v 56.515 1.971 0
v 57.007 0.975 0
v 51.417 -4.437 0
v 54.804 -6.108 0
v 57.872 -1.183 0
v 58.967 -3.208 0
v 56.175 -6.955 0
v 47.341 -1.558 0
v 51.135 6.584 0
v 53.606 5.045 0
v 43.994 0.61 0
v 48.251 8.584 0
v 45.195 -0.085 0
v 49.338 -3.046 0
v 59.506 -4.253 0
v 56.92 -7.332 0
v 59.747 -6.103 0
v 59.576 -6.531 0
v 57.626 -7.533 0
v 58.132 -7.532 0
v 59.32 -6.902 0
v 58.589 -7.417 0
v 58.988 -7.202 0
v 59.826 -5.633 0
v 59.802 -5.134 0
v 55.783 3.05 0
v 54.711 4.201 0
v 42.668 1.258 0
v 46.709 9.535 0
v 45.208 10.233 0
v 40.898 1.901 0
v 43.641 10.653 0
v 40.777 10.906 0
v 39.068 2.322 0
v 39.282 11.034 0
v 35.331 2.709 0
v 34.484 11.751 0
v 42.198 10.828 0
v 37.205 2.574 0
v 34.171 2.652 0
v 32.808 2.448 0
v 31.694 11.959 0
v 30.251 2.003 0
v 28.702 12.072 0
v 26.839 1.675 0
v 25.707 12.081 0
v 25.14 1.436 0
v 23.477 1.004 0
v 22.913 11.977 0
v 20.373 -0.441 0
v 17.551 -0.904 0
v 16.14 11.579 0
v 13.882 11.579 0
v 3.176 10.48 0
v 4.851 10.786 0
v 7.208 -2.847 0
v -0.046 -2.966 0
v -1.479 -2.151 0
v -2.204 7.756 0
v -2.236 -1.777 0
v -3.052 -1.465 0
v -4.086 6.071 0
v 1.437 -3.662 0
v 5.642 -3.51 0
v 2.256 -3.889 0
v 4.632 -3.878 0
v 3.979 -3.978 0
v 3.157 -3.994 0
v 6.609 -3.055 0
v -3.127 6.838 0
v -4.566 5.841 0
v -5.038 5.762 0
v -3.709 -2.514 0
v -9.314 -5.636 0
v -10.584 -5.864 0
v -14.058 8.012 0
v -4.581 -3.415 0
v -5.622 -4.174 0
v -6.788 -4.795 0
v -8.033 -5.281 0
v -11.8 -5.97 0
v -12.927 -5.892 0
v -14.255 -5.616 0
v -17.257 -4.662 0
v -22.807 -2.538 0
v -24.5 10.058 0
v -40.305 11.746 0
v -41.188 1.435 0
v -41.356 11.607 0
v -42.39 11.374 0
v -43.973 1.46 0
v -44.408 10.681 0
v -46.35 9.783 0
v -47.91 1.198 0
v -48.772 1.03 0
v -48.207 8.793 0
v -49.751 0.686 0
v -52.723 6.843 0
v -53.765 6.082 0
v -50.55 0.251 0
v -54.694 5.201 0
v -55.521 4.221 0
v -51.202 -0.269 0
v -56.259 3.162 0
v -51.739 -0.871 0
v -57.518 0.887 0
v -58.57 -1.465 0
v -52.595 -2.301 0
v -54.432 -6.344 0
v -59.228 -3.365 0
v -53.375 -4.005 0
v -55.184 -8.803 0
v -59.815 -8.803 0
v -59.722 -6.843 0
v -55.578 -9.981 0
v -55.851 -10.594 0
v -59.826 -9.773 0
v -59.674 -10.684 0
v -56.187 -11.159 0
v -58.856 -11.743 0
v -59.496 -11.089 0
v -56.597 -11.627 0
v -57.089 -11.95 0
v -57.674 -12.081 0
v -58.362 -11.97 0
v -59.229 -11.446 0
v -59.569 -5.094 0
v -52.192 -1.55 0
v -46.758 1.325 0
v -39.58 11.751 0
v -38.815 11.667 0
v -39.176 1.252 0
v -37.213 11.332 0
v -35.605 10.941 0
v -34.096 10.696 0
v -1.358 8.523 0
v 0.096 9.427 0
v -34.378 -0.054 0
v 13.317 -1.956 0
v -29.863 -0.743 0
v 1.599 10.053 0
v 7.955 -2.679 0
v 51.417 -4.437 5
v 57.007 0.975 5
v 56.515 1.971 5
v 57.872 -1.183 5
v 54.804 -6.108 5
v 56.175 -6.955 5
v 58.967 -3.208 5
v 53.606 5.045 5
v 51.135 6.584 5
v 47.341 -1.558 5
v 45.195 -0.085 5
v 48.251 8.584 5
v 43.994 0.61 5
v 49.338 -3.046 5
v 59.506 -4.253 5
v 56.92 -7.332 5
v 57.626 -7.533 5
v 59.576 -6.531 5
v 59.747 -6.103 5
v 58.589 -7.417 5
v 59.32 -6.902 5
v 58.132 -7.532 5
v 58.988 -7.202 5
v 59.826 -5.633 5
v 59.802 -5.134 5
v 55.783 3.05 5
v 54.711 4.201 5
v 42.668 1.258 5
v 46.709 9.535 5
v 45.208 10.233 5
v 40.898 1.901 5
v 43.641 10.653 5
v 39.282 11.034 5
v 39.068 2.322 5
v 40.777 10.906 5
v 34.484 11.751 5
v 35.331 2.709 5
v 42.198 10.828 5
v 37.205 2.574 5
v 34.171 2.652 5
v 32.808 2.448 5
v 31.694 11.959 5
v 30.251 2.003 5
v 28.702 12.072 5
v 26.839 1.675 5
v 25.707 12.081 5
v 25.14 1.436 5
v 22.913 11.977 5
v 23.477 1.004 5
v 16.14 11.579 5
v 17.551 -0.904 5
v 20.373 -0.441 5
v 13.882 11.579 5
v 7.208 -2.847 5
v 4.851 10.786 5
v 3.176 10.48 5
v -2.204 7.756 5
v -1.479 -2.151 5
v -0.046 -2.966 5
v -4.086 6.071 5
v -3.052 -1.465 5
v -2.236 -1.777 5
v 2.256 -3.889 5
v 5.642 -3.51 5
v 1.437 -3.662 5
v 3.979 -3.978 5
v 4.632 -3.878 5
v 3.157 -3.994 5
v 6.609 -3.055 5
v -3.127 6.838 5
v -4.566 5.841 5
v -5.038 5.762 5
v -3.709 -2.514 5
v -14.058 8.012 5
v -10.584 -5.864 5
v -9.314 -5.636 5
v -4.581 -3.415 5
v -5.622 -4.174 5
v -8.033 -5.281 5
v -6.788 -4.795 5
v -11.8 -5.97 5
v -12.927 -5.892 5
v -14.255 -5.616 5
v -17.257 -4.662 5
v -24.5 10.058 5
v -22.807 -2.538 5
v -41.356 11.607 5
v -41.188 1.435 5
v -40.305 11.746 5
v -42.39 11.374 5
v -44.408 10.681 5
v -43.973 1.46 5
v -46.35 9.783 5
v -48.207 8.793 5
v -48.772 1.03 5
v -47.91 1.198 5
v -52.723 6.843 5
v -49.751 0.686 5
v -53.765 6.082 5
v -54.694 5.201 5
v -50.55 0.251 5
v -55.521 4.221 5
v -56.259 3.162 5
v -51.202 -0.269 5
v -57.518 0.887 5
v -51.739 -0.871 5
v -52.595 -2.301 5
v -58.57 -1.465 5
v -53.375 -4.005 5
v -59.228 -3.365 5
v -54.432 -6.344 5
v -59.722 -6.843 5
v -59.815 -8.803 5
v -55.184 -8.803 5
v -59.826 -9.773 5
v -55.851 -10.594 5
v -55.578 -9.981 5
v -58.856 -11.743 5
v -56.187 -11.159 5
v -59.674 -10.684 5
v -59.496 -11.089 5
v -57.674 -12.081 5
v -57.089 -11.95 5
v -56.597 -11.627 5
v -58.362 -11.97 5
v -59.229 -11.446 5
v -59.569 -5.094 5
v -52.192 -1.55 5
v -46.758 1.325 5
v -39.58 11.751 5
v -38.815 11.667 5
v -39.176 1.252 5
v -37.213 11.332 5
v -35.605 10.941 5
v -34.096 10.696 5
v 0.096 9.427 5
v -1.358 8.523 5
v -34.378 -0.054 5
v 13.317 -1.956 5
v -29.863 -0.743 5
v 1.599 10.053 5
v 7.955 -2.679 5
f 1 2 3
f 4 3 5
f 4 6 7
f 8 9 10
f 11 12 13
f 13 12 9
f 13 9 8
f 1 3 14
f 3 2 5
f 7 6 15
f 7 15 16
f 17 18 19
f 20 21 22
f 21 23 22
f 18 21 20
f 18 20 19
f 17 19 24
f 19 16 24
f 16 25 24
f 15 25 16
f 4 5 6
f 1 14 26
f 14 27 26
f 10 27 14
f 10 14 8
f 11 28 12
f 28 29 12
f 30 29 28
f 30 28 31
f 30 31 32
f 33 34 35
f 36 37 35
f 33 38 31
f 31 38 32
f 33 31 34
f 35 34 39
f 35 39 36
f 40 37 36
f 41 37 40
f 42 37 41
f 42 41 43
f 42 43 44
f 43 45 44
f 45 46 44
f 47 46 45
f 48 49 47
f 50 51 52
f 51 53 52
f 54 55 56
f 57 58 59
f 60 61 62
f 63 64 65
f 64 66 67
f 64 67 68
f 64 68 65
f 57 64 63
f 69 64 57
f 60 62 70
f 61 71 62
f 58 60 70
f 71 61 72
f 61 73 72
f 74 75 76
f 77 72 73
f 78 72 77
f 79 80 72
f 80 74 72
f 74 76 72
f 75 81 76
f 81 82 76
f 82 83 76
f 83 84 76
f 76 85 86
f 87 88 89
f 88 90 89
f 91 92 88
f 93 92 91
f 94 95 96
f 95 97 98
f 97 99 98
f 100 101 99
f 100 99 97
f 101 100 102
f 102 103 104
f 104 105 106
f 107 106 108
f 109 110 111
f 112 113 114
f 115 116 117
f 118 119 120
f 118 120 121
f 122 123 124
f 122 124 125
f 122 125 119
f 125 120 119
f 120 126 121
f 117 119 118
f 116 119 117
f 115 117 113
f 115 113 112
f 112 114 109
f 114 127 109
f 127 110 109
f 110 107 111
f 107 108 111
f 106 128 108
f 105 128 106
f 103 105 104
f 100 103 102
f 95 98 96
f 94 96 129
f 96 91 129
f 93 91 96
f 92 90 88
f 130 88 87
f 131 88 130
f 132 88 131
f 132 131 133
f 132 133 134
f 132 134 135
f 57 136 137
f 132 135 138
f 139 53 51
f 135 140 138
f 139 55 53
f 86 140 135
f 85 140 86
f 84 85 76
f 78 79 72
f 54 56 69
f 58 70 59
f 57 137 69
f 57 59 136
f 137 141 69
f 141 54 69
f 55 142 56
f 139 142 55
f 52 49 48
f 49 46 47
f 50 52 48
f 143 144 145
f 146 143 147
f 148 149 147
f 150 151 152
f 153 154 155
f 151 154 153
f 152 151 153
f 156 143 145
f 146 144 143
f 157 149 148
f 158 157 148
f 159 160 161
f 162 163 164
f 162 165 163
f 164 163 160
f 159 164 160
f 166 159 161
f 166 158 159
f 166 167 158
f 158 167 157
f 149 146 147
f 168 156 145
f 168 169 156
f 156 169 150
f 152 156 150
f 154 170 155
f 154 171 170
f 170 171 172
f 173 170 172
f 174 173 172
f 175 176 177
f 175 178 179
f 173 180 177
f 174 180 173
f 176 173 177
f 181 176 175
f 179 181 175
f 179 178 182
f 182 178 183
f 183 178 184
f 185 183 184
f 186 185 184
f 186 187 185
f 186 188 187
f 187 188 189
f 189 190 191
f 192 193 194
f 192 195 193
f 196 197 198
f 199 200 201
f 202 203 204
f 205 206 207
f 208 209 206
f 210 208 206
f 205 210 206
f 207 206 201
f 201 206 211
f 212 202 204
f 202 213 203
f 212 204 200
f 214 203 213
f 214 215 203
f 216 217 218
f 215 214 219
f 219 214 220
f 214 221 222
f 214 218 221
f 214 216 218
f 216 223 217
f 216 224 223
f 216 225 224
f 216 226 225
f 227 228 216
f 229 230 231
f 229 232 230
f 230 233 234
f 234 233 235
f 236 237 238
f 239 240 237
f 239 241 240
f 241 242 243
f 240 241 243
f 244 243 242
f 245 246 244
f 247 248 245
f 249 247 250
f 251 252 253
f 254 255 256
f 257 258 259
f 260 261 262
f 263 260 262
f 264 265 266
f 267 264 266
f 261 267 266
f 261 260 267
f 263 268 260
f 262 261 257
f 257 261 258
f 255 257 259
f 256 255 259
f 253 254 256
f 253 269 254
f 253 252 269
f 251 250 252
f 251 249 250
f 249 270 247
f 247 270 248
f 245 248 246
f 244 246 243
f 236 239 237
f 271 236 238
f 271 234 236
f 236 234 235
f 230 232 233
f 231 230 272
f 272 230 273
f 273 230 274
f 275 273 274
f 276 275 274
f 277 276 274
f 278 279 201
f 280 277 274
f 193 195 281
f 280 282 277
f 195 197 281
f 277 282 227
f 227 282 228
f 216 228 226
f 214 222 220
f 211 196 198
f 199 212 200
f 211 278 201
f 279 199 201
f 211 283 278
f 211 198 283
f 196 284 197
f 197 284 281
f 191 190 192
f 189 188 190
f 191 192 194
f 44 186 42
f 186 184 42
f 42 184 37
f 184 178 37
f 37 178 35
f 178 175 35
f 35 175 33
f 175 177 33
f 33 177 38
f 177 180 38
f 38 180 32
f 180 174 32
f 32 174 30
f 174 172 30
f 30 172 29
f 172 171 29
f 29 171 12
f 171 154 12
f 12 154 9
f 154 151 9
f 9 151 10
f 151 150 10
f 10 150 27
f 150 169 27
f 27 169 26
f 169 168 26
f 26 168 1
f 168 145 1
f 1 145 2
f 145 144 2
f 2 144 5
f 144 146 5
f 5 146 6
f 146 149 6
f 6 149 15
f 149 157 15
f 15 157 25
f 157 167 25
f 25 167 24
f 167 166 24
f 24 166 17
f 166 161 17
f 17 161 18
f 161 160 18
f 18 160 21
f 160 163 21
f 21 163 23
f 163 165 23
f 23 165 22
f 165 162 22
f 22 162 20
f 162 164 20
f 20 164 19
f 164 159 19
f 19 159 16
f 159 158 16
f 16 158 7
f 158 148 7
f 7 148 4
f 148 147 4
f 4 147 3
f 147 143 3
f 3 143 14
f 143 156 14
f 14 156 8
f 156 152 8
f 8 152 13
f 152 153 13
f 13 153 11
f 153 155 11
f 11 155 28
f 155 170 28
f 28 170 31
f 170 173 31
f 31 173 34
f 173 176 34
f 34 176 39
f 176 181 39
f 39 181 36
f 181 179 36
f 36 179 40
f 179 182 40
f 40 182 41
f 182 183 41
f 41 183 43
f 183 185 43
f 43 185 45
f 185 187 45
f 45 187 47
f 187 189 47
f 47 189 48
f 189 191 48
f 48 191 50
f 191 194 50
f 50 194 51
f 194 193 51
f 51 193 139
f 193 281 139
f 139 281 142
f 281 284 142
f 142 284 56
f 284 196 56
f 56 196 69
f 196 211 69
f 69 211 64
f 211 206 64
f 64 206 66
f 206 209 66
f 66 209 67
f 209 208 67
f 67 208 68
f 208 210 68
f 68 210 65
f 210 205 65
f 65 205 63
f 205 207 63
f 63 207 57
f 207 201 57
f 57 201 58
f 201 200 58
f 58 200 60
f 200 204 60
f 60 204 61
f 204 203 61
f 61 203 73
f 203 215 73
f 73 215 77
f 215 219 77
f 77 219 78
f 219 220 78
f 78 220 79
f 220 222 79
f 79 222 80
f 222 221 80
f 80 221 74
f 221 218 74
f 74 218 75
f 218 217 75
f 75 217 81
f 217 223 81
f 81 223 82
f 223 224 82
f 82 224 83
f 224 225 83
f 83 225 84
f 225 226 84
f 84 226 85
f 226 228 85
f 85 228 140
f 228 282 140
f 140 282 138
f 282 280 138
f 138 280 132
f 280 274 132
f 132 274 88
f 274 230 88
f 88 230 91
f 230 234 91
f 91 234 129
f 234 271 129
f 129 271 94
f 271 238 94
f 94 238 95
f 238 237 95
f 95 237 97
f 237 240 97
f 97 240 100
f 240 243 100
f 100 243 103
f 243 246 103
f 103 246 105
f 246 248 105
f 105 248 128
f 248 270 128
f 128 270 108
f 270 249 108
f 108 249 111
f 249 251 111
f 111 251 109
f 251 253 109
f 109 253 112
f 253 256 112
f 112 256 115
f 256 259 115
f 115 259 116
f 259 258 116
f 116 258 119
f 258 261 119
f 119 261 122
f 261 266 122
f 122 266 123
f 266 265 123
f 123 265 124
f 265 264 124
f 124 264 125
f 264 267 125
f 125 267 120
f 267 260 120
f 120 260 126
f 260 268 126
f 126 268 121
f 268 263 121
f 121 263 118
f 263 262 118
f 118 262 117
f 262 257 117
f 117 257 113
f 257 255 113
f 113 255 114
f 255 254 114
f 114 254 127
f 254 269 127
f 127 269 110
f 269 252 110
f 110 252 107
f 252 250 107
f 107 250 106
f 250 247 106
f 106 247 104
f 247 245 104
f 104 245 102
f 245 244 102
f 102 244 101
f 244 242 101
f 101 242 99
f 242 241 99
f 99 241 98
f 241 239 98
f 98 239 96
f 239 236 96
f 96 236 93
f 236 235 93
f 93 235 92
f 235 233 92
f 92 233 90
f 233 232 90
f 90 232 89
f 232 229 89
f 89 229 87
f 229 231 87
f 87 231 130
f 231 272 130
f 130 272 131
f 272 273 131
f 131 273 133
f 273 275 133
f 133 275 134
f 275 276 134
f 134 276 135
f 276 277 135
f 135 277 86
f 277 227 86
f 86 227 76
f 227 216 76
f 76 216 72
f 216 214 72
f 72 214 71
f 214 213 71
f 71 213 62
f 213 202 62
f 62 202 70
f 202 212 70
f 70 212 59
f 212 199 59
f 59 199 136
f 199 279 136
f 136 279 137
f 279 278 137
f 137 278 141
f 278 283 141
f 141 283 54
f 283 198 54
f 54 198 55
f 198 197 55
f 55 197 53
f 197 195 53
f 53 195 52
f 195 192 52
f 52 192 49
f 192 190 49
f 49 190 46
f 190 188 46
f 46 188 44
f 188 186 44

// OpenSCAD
fridaKalohBrow(5);

module fridaKalohBrow(h)
{
  scale([25.4/90, -25.4/90, 1]) union()
  {
    linear_extrude(height=h)
      polygon([[-41.812656,21.152012],[-45.803359,20.878887],[-50.510781,19.898887],[-61.147656,16.519512],[-80.812656,8.992012],[-105.812656,2.632012],[-121.812656,0.192012],[-138.812656,-4.437988],[-145.940625,-5.083770],[-155.808906,-5.171738],[-165.679062,-4.695332],[-169.759082,-4.243437],[-172.812656,-3.647988],[-176.281621,-2.429023],[-179.114375,-0.890020],[-181.424707,0.953438],[-183.326406,3.085762],[-184.933262,5.491367],[-186.359062,8.154668],[-189.122656,14.192012],[-192.867656,22.478262],[-195.532656,31.192012],[-196.930625,35.366699],[-197.897441,37.538770],[-199.088906,39.539512],[-200.539590,41.198066],[-202.284062,42.343574],[-204.356895,42.805176],[-206.792656,42.412012],[-208.545059,41.609570],[-209.865625,40.556230],[-210.811895,39.291719],[-211.441406,37.855762],[-211.980312,34.628418],[-211.942656,31.192012],[-211.613594,24.246699],[-211.072656,18.049512],[-209.864219,11.923574],[-207.532656,5.192012],[-203.804375,-3.141582],[-199.343906,-11.204238],[-196.728652,-14.956719],[-193.797812,-18.428770],[-190.507207,-21.549492],[-186.812656,-24.247988],[-170.812656,-31.157988],[-164.232656,-34.664082],[-157.352656,-37.846738],[-150.202656,-40.300020],[-146.535781,-41.126289],[-142.812656,-41.617988],[-140.245586,-41.636562],[-137.532969,-41.339082],[-131.857656,-40.151738],[-126.159844,-38.767520],[-120.812656,-37.897988],[-86.812656,-35.637988],[-49.812656,-28.387988],[-17.852656,-20.417988],[-16.177129,-20.695488],[-14.477812,-21.512988],[-11.081406,-24.227988],[-7.810625,-27.482988],[-4.812656,-30.197988],[0.339063,-33.401582],[5.666094,-35.621738],[11.253750,-37.135020],[17.187344,-38.217988],[49.187344,-41.027988],[57.187344,-41.027988],[81.187344,-42.437988],[91.088125,-42.805176],[101.698594,-42.772988],[112.303437,-42.373301],[122.187344,-41.637988],[139.187344,-39.097988],[144.486562,-38.642988],[149.518594,-38.367988],[154.635000,-37.747988],[160.187344,-36.257988],[165.503438,-33.784863],[170.968594,-30.415488],[181.187344,-23.327988],[189.943594,-17.874238],[193.859063,-14.886270],[197.657344,-10.807988],[200.250781,-6.983457],[201.994844,-3.454238],[205.057344,4.192012],[208.938594,11.368262],[210.849688,15.069355],[211.897344,18.192012],[211.980313,19.958750],[211.702344,21.625293],[211.094375,23.141133],[210.187344,24.455762],[209.012188,25.518672],[207.599844,26.279355],[205.981250,26.687305],[204.187344,26.692012],[201.685469,25.980293],[199.044844,24.643262],[194.187344,21.642012],[182.187344,15.722012],[174.820781,10.794199],[167.744844,5.519512],[160.140156,0.301074],[155.883477,-2.161074],[151.187344,-4.457988],[144.912813,-6.734863],[138.431094,-8.227988],[131.827500,-9.121113],[125.187344,-9.597988],[121.078281,-9.397207],[116.247344,-8.674238],[107.187344,-7.097988],[95.097344,-5.935488],[89.077656,-5.087051],[83.187344,-3.557988],[72.187344,1.562012],[62.187344,3.202012],[47.187344,6.932012],[28.187344,9.492012],[25.541035,10.086816],[23.417500,10.824824],[19.991094,12.437012],[16.412813,13.741699],[14.099434,14.095332],[11.187344,14.152012],[7.993965,13.779727],[5.093438,12.975605],[-0.161406,10.508262],[-5.241875,7.622793],[-7.924434,6.296016],[-10.812656,5.192012],[-13.142598,8.906387],[-16.231562,12.101387],[-19.920762,14.791074],[-24.051406,16.989512],[-28.464707,18.710762],[-33.001875,19.968887],[-37.504121,20.777949],[-41.812656,21.152012]]);
  }
}
